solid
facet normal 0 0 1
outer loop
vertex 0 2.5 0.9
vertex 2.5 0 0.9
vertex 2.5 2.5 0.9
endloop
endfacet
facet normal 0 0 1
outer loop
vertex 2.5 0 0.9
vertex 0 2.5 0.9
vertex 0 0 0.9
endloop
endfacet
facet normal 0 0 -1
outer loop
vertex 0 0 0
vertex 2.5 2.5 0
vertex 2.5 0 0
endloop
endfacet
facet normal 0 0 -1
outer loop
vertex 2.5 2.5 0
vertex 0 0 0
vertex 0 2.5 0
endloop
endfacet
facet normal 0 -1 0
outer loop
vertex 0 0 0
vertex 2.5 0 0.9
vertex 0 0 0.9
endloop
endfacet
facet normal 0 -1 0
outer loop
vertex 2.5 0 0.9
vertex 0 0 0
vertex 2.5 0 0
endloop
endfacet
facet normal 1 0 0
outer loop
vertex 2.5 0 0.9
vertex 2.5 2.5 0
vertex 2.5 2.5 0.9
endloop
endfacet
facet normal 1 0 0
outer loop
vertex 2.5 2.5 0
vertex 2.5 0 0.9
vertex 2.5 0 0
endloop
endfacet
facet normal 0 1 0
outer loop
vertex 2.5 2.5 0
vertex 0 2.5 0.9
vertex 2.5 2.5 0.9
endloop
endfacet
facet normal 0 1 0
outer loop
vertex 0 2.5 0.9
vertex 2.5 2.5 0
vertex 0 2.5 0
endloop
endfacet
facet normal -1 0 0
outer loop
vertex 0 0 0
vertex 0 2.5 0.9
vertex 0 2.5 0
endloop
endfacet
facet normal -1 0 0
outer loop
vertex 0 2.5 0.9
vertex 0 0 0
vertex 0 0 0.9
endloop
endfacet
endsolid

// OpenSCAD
/* Warning, this is a very basic generator with a lot of approximation 
input data : [VDFN, J9A, 2.5x2.5x0.9mm, 10, , A, C04-01018A]
generated by com.zoubworld.electronics.cad.model3d.Basic
Date : Sun Feb 15 10:50:49 CET 2026
*/

//body
color("black")
translate([0,0,0])
cube([2.5,2.5,0.9], center=false);
